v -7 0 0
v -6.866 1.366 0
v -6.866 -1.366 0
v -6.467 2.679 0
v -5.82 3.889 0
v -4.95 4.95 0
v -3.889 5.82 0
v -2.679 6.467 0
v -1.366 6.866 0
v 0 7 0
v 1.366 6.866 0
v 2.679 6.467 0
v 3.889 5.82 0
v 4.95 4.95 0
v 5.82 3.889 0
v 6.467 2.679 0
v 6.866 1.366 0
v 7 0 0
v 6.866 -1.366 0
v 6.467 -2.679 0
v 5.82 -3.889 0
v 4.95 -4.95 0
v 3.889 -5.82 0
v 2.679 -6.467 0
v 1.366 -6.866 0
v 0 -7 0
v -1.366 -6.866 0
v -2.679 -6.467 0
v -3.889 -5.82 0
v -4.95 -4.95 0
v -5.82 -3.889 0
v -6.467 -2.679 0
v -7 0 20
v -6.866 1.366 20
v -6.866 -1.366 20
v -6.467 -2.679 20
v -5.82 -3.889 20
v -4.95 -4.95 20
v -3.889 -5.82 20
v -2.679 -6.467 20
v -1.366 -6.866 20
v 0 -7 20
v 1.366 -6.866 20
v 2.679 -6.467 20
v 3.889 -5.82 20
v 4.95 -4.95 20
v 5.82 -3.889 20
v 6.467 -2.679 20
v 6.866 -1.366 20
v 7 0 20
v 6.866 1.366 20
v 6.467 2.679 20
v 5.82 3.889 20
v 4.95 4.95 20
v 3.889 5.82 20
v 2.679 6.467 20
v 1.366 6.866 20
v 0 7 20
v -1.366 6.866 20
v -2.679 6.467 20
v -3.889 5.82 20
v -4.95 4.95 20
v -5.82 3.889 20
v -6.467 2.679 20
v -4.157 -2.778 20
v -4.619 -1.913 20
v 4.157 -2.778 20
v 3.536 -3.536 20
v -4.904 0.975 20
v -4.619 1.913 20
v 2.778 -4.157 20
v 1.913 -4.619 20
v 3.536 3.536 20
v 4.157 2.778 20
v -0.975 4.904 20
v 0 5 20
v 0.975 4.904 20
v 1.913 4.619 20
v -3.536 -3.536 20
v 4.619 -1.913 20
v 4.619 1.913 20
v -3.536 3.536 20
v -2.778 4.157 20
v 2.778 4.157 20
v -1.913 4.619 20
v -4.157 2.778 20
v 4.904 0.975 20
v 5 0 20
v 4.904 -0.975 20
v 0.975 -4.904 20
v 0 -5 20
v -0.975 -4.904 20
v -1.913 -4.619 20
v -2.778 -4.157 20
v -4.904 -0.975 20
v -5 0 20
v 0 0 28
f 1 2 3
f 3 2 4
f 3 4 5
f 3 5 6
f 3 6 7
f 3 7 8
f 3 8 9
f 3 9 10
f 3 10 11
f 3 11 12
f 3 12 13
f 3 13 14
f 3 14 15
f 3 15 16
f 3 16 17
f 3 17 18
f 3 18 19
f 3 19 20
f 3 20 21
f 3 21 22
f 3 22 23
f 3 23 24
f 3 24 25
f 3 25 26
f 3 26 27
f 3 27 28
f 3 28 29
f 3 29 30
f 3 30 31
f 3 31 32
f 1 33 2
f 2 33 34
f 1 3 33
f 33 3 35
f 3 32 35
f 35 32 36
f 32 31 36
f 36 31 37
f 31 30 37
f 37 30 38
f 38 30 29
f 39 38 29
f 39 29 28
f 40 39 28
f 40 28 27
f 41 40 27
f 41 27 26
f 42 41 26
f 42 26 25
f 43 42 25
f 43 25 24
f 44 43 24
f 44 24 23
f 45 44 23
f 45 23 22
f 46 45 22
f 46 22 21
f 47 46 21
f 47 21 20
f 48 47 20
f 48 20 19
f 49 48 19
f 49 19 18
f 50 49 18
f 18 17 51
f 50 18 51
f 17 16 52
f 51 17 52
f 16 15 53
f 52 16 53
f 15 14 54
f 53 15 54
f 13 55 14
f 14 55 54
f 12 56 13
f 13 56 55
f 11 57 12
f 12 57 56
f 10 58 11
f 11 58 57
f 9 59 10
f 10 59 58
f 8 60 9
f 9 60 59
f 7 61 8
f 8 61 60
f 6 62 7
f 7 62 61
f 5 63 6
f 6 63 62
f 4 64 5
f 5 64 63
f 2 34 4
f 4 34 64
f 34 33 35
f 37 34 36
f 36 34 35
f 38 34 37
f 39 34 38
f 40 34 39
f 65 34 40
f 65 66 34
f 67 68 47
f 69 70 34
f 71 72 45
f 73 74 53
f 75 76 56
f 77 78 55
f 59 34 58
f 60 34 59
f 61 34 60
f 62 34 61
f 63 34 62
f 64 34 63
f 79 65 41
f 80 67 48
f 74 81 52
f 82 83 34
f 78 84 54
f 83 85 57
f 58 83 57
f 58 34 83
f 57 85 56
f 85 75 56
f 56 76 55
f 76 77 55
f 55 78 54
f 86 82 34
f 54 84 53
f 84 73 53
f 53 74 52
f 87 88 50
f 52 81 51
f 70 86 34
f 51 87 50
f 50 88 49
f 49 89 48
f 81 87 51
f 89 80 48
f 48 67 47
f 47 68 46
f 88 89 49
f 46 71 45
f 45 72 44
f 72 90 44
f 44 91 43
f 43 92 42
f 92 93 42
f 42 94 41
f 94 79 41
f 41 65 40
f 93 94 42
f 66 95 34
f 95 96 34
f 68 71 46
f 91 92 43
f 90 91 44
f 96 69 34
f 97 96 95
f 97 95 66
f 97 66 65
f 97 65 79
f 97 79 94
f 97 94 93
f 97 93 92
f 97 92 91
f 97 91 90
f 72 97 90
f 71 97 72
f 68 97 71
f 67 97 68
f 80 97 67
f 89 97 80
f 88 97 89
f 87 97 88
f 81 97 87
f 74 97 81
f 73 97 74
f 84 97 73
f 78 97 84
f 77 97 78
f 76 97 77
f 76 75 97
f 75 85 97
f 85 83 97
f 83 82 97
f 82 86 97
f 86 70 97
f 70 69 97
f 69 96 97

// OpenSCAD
cylinder( r=7, h=20, $fn=32 );

translate( [0,0,20] )
cylinder( r1=5, r2=0, h=8, $fn=32 );
